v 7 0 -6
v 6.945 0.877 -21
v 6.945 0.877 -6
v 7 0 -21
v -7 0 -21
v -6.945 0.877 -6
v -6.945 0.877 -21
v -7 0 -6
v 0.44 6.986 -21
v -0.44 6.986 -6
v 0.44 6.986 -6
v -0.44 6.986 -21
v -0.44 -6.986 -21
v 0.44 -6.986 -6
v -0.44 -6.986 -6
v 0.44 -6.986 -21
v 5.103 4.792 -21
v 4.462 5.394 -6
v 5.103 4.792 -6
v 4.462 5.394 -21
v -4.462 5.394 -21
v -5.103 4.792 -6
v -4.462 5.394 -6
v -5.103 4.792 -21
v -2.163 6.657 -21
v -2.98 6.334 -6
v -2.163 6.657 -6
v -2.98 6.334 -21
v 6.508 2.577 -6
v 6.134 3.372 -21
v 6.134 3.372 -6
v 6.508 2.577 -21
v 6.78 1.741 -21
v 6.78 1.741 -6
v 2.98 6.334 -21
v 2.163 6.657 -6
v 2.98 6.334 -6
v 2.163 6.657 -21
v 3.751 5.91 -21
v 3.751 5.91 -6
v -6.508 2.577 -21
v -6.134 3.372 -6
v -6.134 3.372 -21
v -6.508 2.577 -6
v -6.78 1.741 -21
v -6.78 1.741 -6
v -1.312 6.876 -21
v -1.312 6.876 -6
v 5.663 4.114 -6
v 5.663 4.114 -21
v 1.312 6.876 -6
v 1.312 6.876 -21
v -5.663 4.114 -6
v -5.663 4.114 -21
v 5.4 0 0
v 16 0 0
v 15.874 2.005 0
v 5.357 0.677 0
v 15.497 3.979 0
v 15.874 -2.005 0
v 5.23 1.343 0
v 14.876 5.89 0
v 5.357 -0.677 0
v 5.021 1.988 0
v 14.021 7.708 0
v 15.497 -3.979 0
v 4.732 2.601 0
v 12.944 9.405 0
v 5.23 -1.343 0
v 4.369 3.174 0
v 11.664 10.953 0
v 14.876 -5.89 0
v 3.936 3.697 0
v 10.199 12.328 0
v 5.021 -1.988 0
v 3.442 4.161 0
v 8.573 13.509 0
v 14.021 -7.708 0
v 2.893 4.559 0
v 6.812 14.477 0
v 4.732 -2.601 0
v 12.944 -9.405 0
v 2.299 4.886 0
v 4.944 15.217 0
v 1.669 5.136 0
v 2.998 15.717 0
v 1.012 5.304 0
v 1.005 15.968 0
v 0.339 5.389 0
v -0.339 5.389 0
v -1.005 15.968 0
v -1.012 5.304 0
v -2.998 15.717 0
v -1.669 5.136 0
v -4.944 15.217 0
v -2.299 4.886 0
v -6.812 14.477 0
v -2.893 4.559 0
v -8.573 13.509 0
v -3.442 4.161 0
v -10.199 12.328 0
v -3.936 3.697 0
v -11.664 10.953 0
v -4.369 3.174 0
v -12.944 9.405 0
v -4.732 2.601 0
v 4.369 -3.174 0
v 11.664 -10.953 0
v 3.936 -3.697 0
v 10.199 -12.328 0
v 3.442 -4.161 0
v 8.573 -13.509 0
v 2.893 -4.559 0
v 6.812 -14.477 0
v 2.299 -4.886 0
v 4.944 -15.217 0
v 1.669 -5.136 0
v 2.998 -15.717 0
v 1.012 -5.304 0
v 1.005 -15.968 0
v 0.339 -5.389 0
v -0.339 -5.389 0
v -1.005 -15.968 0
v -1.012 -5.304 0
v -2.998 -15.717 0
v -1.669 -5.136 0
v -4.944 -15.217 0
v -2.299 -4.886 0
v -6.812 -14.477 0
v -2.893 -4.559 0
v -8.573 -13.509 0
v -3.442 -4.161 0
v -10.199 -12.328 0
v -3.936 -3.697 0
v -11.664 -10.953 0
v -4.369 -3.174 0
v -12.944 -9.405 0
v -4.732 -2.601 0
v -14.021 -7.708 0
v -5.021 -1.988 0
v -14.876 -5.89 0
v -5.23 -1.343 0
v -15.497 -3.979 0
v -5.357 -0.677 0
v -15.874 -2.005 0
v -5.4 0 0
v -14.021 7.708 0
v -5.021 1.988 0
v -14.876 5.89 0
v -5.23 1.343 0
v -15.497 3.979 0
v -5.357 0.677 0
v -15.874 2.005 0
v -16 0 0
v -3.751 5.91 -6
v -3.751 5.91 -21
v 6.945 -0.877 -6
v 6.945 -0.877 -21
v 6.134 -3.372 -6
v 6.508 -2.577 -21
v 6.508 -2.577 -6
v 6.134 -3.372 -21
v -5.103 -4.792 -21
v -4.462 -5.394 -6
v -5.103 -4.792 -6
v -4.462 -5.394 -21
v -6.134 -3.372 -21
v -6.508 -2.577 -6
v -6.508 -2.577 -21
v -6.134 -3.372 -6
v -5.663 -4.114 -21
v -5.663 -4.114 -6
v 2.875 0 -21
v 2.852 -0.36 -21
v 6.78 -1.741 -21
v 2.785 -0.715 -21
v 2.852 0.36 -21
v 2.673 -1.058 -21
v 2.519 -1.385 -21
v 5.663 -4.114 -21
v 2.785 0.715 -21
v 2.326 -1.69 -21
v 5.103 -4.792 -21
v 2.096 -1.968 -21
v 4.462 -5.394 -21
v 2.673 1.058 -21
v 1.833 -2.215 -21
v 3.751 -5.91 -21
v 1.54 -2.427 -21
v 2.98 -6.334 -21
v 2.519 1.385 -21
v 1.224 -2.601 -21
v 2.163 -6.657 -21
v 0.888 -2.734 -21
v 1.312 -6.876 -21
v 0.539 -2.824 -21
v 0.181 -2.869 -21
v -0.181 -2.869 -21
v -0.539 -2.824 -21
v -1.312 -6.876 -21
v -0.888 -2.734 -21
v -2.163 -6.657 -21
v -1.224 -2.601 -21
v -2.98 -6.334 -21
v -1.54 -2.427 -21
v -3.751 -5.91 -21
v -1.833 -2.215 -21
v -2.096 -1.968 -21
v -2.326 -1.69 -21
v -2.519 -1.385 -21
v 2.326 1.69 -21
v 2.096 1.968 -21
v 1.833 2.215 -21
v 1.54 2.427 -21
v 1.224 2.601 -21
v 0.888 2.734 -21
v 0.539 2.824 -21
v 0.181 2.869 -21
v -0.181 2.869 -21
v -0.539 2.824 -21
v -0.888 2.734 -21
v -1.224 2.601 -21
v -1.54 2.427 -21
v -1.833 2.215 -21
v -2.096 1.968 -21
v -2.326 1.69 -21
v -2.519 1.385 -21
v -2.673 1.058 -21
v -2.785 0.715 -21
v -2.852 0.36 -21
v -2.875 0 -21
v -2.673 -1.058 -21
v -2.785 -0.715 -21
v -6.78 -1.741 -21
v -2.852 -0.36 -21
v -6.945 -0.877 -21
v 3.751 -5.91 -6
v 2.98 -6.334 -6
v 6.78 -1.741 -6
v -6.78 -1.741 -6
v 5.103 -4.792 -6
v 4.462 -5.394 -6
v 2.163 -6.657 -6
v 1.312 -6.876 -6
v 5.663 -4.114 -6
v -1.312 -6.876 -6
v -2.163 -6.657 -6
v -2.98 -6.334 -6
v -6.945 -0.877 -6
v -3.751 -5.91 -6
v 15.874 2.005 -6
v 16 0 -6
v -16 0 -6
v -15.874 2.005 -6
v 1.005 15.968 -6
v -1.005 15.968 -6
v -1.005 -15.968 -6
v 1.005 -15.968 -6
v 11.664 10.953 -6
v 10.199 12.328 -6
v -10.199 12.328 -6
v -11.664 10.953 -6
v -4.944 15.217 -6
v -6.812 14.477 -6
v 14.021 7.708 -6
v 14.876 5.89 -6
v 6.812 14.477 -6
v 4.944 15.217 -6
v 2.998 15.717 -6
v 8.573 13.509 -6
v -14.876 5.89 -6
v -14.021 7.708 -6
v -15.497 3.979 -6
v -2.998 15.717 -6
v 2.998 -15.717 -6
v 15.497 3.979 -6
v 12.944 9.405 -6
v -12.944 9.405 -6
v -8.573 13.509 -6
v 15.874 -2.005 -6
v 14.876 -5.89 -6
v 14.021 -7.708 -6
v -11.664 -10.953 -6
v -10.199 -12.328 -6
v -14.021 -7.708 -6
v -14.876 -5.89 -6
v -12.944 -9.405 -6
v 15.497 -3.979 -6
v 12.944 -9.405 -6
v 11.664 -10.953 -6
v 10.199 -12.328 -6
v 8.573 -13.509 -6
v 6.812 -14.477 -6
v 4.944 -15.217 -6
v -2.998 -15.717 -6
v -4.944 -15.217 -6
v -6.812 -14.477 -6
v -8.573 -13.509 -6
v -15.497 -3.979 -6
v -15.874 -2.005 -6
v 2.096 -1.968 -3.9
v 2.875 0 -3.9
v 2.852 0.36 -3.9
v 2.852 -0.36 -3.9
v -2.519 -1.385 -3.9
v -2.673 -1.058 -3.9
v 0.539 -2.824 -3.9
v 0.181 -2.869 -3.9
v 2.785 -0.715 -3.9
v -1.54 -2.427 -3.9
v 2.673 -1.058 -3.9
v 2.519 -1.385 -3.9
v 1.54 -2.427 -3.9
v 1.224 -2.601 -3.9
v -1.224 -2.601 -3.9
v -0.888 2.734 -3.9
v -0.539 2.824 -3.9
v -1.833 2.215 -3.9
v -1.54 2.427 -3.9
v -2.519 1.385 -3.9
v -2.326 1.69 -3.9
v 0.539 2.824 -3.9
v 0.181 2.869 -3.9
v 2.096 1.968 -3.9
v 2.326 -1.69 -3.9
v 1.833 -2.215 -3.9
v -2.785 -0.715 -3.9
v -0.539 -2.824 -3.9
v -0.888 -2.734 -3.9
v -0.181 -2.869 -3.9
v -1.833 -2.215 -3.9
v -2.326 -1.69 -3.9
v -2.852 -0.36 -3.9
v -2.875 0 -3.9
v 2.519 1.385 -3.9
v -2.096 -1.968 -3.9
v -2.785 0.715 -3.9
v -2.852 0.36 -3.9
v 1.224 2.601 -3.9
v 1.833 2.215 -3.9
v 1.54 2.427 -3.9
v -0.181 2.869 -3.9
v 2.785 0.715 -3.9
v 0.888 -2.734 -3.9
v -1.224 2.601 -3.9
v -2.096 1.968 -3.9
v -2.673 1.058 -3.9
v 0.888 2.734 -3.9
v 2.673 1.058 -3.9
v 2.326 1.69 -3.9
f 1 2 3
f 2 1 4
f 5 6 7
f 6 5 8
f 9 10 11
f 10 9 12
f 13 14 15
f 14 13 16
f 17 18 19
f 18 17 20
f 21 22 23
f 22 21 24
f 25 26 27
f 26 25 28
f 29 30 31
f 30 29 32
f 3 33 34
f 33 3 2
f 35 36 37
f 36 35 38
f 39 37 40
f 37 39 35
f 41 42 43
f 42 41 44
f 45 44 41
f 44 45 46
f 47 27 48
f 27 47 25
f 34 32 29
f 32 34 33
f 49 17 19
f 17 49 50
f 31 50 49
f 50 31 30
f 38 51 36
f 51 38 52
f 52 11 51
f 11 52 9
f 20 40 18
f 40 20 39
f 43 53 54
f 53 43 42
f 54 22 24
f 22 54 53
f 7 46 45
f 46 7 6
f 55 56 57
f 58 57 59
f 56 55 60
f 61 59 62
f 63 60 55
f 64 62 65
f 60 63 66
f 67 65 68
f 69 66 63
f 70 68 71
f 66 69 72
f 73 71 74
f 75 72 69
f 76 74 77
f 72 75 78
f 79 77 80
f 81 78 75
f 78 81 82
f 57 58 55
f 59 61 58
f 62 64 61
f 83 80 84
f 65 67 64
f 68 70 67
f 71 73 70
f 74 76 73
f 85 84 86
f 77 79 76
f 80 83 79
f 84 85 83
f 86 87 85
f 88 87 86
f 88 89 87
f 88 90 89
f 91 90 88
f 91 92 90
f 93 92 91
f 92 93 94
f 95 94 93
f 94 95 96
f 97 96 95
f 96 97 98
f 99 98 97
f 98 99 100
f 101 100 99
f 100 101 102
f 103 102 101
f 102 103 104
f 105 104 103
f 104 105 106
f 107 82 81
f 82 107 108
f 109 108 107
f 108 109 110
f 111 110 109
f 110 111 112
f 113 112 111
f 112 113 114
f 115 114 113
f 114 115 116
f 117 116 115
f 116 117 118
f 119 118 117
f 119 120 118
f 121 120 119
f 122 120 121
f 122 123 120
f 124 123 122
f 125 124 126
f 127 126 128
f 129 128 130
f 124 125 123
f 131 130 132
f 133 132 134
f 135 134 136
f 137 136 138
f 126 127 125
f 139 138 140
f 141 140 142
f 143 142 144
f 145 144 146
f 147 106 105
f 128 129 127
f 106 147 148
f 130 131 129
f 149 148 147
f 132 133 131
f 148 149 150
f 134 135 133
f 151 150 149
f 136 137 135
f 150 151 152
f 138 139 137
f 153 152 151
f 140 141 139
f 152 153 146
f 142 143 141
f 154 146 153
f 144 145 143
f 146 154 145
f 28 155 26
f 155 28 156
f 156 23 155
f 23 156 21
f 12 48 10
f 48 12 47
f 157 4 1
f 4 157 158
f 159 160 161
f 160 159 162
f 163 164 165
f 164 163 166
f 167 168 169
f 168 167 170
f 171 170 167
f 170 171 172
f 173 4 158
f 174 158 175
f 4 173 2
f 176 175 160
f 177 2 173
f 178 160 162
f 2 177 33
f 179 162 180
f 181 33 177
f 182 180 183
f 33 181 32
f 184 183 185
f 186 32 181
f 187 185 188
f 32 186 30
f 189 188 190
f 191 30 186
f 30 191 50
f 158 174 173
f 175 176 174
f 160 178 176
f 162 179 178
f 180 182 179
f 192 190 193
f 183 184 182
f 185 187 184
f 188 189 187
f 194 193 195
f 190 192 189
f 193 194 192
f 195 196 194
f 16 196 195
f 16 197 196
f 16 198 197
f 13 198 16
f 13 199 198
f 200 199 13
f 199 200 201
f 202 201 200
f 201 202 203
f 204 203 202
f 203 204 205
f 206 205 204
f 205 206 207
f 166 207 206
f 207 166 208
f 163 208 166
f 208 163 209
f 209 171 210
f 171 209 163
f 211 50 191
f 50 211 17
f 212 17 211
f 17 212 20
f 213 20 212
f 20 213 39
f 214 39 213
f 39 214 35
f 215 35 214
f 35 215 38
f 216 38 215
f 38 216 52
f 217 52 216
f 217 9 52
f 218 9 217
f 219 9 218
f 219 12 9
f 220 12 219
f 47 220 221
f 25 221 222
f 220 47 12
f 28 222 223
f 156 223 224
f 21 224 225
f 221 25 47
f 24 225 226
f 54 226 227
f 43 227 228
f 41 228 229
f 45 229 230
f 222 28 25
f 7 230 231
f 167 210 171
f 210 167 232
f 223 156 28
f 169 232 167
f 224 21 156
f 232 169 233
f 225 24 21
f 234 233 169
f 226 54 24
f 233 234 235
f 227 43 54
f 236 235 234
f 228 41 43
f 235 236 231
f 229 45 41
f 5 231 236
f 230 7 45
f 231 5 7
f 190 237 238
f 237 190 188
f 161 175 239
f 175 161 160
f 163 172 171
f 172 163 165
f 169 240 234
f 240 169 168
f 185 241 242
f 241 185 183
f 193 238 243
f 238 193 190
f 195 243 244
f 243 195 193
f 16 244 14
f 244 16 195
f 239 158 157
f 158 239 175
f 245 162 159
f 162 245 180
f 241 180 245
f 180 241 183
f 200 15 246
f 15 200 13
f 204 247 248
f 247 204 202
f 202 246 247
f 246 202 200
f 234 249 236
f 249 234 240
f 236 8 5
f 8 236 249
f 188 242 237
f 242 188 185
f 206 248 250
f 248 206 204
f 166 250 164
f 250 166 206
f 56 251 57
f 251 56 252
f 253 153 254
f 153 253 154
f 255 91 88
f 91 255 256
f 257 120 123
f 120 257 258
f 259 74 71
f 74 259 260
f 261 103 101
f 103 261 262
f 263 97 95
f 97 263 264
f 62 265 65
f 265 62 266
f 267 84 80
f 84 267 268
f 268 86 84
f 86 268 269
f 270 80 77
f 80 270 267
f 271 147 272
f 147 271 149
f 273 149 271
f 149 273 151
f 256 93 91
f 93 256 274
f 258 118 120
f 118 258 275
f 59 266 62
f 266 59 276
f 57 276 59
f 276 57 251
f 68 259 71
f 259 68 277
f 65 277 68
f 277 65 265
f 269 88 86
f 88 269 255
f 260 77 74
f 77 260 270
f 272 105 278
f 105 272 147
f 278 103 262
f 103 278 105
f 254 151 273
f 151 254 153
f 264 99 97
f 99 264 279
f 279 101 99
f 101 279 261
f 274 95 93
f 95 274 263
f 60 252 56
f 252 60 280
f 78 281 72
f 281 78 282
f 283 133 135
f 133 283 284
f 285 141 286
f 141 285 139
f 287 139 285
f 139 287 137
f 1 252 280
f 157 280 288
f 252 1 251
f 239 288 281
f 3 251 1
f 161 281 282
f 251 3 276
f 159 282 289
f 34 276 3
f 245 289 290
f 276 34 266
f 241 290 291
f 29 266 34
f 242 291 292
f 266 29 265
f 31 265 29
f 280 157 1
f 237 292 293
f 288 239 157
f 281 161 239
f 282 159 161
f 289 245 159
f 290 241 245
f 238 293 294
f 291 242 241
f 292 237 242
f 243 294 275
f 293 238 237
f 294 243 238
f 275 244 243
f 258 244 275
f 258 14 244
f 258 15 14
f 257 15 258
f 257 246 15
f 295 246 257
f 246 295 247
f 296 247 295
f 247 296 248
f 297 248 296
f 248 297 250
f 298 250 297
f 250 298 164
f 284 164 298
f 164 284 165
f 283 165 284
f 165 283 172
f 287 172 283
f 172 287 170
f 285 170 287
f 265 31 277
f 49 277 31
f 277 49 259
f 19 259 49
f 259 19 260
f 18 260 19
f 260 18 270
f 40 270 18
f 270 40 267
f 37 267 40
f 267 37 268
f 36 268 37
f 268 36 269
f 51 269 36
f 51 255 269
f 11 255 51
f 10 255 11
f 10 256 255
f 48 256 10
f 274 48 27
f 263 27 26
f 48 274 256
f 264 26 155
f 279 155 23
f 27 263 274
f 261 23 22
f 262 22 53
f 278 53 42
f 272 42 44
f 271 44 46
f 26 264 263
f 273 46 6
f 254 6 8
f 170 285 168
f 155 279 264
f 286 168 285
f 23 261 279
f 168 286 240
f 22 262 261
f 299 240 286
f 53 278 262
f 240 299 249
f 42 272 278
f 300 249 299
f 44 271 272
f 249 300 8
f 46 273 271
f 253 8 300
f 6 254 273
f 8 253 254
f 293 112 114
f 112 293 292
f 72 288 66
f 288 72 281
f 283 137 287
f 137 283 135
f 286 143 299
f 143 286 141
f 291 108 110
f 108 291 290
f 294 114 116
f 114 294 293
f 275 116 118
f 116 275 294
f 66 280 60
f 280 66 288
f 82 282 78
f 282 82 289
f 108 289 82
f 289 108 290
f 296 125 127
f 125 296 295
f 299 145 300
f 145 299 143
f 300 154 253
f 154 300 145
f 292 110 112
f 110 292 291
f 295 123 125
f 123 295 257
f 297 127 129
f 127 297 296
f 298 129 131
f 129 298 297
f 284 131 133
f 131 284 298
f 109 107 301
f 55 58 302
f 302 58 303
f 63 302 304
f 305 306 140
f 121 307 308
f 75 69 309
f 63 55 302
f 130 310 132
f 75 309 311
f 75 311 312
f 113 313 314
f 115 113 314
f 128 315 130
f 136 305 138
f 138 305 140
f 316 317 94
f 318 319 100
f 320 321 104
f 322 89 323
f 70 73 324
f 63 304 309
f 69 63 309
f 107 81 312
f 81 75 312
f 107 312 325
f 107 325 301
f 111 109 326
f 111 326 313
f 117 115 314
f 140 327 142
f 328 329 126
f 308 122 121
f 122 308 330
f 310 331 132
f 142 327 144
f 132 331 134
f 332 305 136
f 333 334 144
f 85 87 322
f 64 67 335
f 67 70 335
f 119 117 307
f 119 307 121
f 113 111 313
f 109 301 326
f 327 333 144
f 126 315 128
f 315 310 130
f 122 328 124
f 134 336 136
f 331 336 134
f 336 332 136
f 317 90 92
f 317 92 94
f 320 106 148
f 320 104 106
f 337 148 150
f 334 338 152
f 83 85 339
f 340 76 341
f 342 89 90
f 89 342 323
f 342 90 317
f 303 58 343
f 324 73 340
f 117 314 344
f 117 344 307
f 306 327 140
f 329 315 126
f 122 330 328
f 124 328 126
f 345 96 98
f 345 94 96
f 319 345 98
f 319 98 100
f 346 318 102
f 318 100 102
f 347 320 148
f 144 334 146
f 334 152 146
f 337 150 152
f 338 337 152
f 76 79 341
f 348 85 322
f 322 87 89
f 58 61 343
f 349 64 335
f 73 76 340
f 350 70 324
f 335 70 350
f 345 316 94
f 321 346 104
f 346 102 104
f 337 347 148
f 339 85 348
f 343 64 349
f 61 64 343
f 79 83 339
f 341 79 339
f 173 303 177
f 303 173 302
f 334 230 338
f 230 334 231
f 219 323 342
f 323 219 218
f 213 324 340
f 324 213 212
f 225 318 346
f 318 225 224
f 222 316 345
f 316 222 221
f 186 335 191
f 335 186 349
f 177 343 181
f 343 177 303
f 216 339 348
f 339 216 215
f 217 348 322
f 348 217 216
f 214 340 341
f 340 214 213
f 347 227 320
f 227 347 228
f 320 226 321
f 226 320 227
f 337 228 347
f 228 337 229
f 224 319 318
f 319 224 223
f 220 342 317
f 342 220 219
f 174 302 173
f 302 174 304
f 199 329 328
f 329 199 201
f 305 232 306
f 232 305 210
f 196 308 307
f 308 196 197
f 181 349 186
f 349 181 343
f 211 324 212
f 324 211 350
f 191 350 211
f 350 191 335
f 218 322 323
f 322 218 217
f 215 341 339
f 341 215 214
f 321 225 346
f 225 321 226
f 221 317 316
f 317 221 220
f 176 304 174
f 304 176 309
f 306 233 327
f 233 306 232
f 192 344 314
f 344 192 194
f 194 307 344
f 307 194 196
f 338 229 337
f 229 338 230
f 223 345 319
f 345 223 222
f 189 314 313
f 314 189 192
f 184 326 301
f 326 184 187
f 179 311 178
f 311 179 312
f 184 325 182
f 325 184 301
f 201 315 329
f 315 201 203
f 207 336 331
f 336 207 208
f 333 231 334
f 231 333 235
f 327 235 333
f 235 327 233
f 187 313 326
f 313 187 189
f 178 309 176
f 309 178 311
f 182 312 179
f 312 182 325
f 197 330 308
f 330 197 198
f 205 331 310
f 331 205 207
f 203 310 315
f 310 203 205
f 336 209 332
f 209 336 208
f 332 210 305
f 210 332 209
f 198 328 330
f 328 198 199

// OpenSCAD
$fn = 50;


difference() {
	union() {
		translate(v = [0, 0, -21.0000000000]) {
			cylinder(h = 21, r = 7.0000000000);
		}
		translate(v = [0, 0, -6.0000000000]) {
			cylinder(h = 6, r = 16.0000000000);
		}
	}
	union() {
		translate(v = [0, 0, 0]) {
			rotate(a = [0, 0, 0]) {
				difference() {
					union() {
						#translate(v = [0, 0, -21.0000000000]) {
							cylinder(h = 21, r = 2.6000000000);
						}
						#translate(v = [0, 0, -3.9000000000]) {
							cylinder(h = 3.9000000000, r1 = 2.8750000000, r2 = 5.4000000000);
						}
						#translate(v = [0, 0, -21.0000000000]) {
							cylinder(h = 21, r = 2.8750000000);
						}
						#translate(v = [0, 0, -21.0000000000]) {
							cylinder(h = 21, r = 2.6000000000);
						}
					}
					union();
				}
			}
		}
	}
}
